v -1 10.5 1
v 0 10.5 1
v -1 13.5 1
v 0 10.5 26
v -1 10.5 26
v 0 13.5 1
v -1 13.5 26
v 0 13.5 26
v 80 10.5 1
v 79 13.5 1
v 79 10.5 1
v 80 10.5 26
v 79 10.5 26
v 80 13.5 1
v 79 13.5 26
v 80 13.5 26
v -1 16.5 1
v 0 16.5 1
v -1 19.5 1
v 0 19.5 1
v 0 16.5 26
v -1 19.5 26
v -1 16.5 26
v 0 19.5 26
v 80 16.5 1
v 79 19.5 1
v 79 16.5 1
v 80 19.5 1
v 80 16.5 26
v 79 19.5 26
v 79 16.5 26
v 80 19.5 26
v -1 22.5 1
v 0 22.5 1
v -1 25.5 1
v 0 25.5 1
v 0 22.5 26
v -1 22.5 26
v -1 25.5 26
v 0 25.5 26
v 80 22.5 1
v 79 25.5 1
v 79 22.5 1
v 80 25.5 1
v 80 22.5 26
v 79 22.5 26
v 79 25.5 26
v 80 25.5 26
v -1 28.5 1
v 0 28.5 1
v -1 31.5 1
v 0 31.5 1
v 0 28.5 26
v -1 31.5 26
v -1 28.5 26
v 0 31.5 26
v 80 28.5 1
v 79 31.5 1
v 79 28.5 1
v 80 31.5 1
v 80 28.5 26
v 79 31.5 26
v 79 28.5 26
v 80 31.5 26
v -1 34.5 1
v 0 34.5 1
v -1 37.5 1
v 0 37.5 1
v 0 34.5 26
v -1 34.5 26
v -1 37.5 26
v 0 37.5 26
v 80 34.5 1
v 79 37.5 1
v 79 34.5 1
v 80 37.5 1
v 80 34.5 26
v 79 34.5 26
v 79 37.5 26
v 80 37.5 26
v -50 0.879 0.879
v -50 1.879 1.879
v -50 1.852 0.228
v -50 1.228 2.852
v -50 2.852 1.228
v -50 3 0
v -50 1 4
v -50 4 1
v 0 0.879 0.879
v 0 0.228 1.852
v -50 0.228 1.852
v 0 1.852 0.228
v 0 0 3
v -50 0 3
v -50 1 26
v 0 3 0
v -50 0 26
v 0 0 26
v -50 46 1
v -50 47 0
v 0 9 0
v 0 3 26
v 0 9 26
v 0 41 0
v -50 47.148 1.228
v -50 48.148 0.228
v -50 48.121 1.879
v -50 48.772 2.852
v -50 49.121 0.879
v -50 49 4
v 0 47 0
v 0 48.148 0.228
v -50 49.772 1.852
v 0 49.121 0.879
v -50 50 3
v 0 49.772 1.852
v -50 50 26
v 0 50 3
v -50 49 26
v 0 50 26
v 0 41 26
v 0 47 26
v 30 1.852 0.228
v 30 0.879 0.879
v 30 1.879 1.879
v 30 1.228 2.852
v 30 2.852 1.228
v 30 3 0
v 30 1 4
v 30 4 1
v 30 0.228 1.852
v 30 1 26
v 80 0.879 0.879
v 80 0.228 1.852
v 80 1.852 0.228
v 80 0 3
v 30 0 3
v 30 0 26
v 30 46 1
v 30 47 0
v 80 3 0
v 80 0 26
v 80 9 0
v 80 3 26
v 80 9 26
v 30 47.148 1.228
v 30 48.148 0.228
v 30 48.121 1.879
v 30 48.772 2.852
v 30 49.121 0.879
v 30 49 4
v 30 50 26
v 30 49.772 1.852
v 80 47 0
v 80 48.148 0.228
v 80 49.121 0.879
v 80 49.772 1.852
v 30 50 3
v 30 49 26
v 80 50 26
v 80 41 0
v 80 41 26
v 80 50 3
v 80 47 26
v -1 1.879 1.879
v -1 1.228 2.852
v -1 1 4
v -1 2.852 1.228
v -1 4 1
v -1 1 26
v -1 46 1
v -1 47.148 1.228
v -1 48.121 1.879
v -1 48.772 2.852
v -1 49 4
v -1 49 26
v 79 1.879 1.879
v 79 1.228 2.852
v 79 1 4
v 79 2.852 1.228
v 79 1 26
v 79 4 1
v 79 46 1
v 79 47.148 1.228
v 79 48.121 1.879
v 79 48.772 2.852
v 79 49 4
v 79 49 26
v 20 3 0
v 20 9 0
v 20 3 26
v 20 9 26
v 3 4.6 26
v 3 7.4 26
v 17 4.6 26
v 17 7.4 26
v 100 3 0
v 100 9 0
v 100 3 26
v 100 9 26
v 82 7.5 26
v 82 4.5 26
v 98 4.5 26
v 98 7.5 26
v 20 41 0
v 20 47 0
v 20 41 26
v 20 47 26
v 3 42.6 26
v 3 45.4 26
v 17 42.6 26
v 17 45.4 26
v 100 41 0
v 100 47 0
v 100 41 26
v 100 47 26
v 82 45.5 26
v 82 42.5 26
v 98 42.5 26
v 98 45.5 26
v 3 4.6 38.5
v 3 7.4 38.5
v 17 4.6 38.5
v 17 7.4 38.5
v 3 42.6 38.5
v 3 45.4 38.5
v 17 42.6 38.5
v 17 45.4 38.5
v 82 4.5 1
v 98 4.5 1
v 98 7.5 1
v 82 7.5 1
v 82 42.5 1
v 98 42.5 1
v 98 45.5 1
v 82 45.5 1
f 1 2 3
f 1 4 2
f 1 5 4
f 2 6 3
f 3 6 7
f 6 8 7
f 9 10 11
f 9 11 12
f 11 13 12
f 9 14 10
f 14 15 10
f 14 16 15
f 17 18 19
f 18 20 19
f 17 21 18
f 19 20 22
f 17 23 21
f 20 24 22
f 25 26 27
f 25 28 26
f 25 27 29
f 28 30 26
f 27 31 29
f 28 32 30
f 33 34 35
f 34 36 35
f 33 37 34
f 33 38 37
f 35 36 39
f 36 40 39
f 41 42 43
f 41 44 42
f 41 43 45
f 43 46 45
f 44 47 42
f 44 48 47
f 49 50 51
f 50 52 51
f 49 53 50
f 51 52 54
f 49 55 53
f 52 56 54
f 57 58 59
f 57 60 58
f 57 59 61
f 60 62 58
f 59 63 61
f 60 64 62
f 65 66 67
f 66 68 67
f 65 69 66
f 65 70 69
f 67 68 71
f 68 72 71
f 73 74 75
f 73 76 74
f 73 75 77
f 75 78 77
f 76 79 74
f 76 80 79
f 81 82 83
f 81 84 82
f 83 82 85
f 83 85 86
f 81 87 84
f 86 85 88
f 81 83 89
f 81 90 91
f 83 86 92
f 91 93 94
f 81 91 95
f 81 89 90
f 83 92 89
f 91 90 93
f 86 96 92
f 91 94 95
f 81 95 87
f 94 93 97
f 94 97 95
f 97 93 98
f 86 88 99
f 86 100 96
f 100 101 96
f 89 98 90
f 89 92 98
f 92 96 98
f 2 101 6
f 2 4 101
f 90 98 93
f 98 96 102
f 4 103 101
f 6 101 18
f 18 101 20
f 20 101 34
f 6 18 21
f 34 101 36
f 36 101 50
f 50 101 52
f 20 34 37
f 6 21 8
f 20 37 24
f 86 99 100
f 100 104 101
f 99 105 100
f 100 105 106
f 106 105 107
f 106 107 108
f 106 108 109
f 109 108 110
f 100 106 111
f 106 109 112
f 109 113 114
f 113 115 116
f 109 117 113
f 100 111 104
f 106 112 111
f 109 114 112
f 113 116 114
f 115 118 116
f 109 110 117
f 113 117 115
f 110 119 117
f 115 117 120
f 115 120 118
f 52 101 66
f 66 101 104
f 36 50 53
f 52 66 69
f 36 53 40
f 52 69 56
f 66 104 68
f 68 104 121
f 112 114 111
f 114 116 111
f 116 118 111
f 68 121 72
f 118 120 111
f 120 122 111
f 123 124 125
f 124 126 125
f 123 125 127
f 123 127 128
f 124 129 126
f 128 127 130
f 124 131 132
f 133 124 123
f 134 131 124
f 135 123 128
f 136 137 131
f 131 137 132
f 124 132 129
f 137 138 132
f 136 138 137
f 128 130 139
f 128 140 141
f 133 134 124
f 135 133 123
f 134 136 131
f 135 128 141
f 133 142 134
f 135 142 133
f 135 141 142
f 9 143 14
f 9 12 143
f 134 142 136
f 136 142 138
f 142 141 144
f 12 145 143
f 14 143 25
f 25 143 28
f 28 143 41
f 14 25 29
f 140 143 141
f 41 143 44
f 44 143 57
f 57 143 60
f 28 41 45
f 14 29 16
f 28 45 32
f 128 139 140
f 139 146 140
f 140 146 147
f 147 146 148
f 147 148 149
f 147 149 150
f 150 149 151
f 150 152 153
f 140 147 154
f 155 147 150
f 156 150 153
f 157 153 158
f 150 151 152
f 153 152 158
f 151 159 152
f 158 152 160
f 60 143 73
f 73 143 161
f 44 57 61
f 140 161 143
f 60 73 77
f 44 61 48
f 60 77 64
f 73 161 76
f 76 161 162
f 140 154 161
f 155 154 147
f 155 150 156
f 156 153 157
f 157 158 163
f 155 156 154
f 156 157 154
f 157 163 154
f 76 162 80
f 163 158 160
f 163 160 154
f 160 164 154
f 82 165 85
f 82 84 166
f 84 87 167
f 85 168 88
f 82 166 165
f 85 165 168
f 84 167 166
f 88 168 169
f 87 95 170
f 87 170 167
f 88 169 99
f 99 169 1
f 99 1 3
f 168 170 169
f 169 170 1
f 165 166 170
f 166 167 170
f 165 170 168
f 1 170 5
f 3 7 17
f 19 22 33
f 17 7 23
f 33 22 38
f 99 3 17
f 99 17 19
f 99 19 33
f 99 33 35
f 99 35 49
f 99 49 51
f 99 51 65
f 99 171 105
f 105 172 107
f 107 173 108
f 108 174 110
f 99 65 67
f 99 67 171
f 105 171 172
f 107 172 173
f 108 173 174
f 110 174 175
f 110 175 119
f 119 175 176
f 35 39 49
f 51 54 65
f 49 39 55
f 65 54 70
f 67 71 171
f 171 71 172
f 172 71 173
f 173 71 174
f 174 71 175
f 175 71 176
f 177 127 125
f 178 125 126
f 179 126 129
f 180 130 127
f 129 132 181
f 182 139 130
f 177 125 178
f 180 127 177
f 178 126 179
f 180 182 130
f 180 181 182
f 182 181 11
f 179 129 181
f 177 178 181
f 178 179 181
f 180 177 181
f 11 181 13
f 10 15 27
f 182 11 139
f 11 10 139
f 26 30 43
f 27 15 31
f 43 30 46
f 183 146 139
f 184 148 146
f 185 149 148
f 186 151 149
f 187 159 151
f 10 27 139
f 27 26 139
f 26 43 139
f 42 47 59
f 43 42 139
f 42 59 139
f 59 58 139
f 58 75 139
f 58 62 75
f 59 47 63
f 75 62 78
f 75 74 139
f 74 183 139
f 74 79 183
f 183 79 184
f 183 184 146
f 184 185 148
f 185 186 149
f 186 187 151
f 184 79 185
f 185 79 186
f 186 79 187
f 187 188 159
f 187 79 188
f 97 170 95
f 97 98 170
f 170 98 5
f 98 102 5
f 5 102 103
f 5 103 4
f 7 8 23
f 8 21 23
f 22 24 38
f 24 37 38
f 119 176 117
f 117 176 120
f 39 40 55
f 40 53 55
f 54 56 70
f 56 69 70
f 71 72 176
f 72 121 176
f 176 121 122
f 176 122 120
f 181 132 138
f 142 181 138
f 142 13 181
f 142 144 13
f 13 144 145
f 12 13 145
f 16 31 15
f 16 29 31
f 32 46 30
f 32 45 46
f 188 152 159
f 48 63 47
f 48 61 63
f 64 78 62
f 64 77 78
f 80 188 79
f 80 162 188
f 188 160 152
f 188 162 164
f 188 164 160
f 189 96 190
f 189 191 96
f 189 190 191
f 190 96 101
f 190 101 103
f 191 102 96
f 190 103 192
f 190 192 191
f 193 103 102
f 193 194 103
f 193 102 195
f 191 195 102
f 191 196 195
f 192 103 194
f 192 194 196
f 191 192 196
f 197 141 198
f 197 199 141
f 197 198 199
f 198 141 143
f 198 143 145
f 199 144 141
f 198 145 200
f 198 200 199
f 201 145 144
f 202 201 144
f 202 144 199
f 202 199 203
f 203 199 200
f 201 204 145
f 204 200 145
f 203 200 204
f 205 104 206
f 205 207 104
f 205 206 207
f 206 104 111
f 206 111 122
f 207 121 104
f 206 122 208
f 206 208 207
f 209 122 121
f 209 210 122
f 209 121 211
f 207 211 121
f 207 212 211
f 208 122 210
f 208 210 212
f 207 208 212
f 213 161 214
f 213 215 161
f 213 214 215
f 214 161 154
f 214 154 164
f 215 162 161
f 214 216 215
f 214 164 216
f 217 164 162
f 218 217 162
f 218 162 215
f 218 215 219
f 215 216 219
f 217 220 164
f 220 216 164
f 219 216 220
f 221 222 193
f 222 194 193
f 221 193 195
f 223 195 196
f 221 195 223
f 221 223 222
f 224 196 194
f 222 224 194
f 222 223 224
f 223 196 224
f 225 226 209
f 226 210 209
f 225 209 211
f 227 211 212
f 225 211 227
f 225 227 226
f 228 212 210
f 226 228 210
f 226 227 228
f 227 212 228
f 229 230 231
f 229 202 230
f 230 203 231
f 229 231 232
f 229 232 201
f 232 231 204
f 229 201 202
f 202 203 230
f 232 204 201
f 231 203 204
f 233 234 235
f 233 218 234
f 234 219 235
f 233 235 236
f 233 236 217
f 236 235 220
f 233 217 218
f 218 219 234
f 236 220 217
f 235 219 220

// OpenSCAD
// file: mixin.scad
$fn = 16;

POT_INNER_SIZE = 50;
POT_WALL_THICKNESS = 1;
POT_CORNER_RADIUS = 3;

SPACER_LENGTH = 2;
SPACER_THICKNESS = 1;

LEG_WIDTH = 6;
LEG_DEPTH = 20;
LEG_EXTENSION = 20;

PIN_WIDTH_A = 2.8;
PIN_WIDTH_B = 3;

SLOT_START = 10.5;
SLOT_STEP = 6;
SLOT_DEPTH = 3;

module rounded_box(size = [10, 10, 5], corner_radius = POT_CORNER_RADIUS) {
  translate([size[0] / 2, size[1] / 2, 0]) {
    linear_extrude(height=size[2]) {
      minkowski() {
        square([size[0] - 2 * corner_radius, size[1] - 2 * corner_radius], center=true);
        circle(r=corner_radius);
      }
    }
  }
}
// main file
include <mixin.scad>;

module pot_shell() {
  rotate([0, -90, 0]) difference() {
    rounded_box([POT_INNER_SIZE, POT_INNER_SIZE, POT_INNER_SIZE]);
    translate([POT_WALL_THICKNESS, POT_WALL_THICKNESS, POT_WALL_THICKNESS])
      rounded_box([
        POT_INNER_SIZE - POT_WALL_THICKNESS * 2,
        POT_INNER_SIZE - POT_WALL_THICKNESS * 2,
        POT_INNER_SIZE + POT_WALL_THICKNESS * 2,
      ]);
    translate([POT_WALL_THICKNESS + POT_INNER_SIZE / 2, -POT_WALL_THICKNESS, -POT_WALL_THICKNESS])
      cube([POT_INNER_SIZE, POT_INNER_SIZE + POT_WALL_THICKNESS * 2, POT_INNER_SIZE * 2]);
    for (slot_offset = [SLOT_START:SLOT_STEP:POT_INNER_SIZE - SLOT_START])
      translate([POT_WALL_THICKNESS, slot_offset, -POT_WALL_THICKNESS])
        cube([POT_INNER_SIZE, SLOT_DEPTH, POT_INNER_SIZE]);
  }
}

module legs() {
  leg_height = POT_INNER_SIZE / 2 + POT_WALL_THICKNESS;
  translate([0, POT_CORNER_RADIUS, 0])
    cube([LEG_EXTENSION, LEG_WIDTH, leg_height]);
  translate([0, POT_INNER_SIZE - POT_CORNER_RADIUS - LEG_WIDTH, 0])
    cube([LEG_EXTENSION, LEG_WIDTH, leg_height]);
}

module leg_pins(pin_width, pin_length) {
  pin_height = POT_INNER_SIZE / 2 + POT_WALL_THICKNESS + POT_INNER_SIZE / 4;
  for (pin_offset = [POT_CORNER_RADIUS + (LEG_WIDTH - pin_width) / 2,
                     POT_INNER_SIZE - POT_CORNER_RADIUS - (LEG_WIDTH + pin_width) / 2])
    translate([(LEG_DEPTH - pin_length) / 2, pin_offset, 0])
      cube([pin_length, pin_width, pin_height]);
}

module inner_shell_a() {
  pot_shell();
  legs();
  leg_pins(PIN_WIDTH_A, LEG_DEPTH - POT_WALL_THICKNESS * 4 - 2);
}

module inner_shell_b() {
  pot_shell();
  difference() {
    legs();
    translate([0, 0, POT_WALL_THICKNESS])
      leg_pins(PIN_WIDTH_B, LEG_DEPTH - POT_WALL_THICKNESS * 4);
  }
}

inner_shell_a();
translate([POT_INNER_SIZE + 30, 0, 0]) inner_shell_b();
